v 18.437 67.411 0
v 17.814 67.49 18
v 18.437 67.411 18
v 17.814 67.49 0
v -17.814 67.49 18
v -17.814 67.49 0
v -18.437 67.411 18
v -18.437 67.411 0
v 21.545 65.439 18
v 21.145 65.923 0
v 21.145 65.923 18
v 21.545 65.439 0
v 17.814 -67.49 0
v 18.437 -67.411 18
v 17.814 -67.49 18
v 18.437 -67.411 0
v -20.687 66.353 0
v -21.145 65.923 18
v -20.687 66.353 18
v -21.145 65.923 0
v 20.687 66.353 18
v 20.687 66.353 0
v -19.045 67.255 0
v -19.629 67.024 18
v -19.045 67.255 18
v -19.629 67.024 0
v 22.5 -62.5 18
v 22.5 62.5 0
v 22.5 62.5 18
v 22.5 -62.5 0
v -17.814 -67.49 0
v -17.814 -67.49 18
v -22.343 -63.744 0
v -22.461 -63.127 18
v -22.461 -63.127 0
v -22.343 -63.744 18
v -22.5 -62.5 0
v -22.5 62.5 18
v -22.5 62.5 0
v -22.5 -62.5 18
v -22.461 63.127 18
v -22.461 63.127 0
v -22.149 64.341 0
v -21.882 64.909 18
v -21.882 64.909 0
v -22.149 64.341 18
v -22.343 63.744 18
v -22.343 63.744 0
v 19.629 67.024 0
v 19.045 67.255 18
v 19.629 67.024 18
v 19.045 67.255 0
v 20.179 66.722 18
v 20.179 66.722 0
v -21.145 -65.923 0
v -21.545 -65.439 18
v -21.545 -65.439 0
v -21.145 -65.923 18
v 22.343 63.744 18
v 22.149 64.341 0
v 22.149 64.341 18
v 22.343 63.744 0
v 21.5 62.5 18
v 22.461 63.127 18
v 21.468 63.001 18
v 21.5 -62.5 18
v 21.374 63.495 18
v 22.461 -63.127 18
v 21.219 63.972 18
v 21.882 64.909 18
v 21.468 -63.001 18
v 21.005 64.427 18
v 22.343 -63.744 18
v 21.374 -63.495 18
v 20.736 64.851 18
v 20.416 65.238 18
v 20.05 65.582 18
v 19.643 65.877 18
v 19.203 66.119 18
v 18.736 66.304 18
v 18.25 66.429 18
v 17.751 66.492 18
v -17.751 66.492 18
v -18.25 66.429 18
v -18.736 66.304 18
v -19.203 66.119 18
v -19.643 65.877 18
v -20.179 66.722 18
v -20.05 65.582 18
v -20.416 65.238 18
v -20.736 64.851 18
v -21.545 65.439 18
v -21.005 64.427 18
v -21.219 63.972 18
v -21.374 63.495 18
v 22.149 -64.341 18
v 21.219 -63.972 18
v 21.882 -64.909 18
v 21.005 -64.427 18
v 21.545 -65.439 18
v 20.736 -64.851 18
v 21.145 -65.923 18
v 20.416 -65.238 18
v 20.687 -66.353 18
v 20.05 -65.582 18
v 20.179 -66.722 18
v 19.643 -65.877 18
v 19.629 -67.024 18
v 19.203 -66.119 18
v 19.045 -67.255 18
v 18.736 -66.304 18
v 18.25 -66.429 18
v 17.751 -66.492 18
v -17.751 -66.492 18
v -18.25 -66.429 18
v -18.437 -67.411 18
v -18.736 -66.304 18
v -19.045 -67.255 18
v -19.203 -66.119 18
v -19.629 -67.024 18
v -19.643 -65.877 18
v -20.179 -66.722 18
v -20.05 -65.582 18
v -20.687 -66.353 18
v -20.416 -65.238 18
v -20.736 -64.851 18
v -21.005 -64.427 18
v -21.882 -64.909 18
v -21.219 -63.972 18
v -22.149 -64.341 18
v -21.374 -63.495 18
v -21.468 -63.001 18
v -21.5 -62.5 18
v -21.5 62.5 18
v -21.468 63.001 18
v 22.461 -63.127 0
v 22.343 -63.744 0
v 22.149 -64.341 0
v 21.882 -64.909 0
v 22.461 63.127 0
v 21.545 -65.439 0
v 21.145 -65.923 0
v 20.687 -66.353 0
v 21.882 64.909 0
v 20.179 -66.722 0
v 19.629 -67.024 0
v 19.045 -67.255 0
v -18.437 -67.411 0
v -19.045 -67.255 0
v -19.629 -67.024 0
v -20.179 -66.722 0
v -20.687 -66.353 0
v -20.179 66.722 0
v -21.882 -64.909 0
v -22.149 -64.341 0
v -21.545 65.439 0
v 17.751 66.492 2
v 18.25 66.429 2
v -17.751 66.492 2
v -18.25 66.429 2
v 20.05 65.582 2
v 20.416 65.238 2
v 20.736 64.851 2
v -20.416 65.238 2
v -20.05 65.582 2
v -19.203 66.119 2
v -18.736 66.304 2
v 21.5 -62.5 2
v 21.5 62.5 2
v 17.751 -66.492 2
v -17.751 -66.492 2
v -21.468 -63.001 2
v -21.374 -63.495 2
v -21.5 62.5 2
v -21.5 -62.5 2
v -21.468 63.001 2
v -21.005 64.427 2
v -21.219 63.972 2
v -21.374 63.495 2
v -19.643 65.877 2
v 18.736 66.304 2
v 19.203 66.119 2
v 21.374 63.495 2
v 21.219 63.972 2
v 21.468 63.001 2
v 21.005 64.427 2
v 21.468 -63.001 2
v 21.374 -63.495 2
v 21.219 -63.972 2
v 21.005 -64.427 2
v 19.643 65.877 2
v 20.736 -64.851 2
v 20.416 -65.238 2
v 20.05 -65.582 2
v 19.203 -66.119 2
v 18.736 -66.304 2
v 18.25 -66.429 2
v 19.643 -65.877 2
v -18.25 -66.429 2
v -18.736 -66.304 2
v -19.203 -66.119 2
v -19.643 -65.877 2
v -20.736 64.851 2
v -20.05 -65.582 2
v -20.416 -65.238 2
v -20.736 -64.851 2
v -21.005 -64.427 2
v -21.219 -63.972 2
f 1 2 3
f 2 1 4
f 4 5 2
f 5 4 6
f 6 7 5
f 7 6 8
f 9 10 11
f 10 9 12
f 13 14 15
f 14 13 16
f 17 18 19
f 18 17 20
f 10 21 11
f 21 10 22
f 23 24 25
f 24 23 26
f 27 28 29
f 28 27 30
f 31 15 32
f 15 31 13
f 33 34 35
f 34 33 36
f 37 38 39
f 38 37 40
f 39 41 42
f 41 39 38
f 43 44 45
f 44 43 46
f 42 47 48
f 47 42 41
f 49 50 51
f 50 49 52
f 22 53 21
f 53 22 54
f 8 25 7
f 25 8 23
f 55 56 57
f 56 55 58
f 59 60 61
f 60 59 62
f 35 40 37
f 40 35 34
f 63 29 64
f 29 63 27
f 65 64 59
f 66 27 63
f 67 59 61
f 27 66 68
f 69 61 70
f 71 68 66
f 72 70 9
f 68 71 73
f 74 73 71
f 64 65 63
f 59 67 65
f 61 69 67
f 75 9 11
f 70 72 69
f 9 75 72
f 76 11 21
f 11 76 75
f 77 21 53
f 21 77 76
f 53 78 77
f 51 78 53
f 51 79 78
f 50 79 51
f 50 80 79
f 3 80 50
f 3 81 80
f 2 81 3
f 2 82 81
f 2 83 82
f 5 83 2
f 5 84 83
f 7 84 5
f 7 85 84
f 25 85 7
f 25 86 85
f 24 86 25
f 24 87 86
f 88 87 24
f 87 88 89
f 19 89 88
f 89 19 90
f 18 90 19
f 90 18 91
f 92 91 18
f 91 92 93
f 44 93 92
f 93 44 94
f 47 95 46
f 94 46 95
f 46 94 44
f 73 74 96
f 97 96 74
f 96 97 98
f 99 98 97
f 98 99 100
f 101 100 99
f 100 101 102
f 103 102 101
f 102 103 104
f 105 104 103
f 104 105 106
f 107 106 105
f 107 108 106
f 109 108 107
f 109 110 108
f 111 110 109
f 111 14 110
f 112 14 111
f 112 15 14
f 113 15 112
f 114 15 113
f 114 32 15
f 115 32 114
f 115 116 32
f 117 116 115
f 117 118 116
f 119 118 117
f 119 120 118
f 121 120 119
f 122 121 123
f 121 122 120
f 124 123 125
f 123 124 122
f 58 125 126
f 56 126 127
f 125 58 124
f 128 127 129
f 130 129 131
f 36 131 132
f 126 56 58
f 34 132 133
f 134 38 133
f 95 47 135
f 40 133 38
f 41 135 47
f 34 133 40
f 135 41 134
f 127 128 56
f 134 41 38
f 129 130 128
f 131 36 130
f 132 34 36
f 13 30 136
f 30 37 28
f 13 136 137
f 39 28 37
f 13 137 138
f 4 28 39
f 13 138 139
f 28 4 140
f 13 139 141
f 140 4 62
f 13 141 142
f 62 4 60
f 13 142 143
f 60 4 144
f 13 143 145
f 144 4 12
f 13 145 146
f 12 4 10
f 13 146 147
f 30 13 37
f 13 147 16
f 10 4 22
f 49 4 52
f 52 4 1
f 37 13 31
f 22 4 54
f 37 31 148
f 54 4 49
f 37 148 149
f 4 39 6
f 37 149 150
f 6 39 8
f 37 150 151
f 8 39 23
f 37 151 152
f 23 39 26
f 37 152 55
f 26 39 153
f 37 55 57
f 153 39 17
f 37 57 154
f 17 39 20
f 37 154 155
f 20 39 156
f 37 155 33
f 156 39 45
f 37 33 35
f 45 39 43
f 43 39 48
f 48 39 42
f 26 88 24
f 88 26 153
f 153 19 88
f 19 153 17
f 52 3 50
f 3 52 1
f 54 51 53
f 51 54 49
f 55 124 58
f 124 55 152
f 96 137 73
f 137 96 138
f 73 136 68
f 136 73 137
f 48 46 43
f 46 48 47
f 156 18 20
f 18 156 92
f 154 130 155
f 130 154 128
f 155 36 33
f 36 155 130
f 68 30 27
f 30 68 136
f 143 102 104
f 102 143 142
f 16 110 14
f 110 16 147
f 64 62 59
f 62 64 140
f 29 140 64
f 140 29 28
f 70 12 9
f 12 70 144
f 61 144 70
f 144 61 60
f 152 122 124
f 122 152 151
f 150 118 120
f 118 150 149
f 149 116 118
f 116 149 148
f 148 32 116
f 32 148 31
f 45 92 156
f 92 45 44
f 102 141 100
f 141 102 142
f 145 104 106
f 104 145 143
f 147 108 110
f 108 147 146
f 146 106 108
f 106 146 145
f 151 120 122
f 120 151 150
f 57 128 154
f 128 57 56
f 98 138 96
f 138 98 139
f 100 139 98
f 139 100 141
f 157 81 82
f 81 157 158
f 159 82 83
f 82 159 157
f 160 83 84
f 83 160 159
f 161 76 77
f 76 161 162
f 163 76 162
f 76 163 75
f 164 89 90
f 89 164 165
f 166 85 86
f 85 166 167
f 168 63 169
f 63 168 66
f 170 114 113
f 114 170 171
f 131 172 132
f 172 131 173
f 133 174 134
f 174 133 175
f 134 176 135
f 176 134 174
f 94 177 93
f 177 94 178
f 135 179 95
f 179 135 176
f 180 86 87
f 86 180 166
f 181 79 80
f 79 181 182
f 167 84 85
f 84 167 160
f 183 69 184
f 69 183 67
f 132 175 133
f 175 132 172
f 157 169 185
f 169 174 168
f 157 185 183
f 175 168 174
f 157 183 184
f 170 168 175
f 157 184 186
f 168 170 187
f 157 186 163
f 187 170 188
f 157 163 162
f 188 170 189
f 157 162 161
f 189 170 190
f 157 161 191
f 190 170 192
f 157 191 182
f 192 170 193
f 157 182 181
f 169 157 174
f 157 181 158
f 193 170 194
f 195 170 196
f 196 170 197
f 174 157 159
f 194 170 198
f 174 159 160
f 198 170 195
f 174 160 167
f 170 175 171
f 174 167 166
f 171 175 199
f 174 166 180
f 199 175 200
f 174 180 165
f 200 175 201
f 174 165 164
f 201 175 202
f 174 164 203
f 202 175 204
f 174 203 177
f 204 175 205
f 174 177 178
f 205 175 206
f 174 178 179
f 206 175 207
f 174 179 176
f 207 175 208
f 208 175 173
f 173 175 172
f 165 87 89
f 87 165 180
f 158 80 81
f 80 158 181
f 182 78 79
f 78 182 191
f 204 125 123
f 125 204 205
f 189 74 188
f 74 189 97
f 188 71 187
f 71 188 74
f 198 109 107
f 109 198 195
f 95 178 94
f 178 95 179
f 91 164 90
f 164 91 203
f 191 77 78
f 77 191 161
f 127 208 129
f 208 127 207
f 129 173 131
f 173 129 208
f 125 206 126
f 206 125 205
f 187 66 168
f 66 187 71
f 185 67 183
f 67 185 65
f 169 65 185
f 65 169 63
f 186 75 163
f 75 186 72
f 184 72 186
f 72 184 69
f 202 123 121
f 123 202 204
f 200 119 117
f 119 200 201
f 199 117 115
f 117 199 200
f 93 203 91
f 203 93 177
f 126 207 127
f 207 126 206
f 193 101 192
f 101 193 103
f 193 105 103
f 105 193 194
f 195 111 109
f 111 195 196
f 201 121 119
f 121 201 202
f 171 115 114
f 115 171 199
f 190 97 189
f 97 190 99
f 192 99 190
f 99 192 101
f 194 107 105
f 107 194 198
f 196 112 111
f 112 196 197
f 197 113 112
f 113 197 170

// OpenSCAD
$fn = 50;


difference() {
	union() {
		hull() {
			translate(v = [-17.5000000000, 62.5000000000, 0]) {
				cylinder(h = 18, r = 5);
			}
			translate(v = [17.5000000000, 62.5000000000, 0]) {
				cylinder(h = 18, r = 5);
			}
			translate(v = [-17.5000000000, -62.5000000000, 0]) {
				cylinder(h = 18, r = 5);
			}
			translate(v = [17.5000000000, -62.5000000000, 0]) {
				cylinder(h = 18, r = 5);
			}
		}
	}
	union() {
		translate(v = [0, 0, 2]) {
			hull() {
				translate(v = [-17.5000000000, 62.5000000000, 0]) {
					cylinder(h = 16, r = 4);
				}
				translate(v = [17.5000000000, 62.5000000000, 0]) {
					cylinder(h = 16, r = 4);
				}
				translate(v = [-17.5000000000, -62.5000000000, 0]) {
					cylinder(h = 16, r = 4);
				}
				translate(v = [17.5000000000, -62.5000000000, 0]) {
					cylinder(h = 16, r = 4);
				}
			}
		}
	}
}
